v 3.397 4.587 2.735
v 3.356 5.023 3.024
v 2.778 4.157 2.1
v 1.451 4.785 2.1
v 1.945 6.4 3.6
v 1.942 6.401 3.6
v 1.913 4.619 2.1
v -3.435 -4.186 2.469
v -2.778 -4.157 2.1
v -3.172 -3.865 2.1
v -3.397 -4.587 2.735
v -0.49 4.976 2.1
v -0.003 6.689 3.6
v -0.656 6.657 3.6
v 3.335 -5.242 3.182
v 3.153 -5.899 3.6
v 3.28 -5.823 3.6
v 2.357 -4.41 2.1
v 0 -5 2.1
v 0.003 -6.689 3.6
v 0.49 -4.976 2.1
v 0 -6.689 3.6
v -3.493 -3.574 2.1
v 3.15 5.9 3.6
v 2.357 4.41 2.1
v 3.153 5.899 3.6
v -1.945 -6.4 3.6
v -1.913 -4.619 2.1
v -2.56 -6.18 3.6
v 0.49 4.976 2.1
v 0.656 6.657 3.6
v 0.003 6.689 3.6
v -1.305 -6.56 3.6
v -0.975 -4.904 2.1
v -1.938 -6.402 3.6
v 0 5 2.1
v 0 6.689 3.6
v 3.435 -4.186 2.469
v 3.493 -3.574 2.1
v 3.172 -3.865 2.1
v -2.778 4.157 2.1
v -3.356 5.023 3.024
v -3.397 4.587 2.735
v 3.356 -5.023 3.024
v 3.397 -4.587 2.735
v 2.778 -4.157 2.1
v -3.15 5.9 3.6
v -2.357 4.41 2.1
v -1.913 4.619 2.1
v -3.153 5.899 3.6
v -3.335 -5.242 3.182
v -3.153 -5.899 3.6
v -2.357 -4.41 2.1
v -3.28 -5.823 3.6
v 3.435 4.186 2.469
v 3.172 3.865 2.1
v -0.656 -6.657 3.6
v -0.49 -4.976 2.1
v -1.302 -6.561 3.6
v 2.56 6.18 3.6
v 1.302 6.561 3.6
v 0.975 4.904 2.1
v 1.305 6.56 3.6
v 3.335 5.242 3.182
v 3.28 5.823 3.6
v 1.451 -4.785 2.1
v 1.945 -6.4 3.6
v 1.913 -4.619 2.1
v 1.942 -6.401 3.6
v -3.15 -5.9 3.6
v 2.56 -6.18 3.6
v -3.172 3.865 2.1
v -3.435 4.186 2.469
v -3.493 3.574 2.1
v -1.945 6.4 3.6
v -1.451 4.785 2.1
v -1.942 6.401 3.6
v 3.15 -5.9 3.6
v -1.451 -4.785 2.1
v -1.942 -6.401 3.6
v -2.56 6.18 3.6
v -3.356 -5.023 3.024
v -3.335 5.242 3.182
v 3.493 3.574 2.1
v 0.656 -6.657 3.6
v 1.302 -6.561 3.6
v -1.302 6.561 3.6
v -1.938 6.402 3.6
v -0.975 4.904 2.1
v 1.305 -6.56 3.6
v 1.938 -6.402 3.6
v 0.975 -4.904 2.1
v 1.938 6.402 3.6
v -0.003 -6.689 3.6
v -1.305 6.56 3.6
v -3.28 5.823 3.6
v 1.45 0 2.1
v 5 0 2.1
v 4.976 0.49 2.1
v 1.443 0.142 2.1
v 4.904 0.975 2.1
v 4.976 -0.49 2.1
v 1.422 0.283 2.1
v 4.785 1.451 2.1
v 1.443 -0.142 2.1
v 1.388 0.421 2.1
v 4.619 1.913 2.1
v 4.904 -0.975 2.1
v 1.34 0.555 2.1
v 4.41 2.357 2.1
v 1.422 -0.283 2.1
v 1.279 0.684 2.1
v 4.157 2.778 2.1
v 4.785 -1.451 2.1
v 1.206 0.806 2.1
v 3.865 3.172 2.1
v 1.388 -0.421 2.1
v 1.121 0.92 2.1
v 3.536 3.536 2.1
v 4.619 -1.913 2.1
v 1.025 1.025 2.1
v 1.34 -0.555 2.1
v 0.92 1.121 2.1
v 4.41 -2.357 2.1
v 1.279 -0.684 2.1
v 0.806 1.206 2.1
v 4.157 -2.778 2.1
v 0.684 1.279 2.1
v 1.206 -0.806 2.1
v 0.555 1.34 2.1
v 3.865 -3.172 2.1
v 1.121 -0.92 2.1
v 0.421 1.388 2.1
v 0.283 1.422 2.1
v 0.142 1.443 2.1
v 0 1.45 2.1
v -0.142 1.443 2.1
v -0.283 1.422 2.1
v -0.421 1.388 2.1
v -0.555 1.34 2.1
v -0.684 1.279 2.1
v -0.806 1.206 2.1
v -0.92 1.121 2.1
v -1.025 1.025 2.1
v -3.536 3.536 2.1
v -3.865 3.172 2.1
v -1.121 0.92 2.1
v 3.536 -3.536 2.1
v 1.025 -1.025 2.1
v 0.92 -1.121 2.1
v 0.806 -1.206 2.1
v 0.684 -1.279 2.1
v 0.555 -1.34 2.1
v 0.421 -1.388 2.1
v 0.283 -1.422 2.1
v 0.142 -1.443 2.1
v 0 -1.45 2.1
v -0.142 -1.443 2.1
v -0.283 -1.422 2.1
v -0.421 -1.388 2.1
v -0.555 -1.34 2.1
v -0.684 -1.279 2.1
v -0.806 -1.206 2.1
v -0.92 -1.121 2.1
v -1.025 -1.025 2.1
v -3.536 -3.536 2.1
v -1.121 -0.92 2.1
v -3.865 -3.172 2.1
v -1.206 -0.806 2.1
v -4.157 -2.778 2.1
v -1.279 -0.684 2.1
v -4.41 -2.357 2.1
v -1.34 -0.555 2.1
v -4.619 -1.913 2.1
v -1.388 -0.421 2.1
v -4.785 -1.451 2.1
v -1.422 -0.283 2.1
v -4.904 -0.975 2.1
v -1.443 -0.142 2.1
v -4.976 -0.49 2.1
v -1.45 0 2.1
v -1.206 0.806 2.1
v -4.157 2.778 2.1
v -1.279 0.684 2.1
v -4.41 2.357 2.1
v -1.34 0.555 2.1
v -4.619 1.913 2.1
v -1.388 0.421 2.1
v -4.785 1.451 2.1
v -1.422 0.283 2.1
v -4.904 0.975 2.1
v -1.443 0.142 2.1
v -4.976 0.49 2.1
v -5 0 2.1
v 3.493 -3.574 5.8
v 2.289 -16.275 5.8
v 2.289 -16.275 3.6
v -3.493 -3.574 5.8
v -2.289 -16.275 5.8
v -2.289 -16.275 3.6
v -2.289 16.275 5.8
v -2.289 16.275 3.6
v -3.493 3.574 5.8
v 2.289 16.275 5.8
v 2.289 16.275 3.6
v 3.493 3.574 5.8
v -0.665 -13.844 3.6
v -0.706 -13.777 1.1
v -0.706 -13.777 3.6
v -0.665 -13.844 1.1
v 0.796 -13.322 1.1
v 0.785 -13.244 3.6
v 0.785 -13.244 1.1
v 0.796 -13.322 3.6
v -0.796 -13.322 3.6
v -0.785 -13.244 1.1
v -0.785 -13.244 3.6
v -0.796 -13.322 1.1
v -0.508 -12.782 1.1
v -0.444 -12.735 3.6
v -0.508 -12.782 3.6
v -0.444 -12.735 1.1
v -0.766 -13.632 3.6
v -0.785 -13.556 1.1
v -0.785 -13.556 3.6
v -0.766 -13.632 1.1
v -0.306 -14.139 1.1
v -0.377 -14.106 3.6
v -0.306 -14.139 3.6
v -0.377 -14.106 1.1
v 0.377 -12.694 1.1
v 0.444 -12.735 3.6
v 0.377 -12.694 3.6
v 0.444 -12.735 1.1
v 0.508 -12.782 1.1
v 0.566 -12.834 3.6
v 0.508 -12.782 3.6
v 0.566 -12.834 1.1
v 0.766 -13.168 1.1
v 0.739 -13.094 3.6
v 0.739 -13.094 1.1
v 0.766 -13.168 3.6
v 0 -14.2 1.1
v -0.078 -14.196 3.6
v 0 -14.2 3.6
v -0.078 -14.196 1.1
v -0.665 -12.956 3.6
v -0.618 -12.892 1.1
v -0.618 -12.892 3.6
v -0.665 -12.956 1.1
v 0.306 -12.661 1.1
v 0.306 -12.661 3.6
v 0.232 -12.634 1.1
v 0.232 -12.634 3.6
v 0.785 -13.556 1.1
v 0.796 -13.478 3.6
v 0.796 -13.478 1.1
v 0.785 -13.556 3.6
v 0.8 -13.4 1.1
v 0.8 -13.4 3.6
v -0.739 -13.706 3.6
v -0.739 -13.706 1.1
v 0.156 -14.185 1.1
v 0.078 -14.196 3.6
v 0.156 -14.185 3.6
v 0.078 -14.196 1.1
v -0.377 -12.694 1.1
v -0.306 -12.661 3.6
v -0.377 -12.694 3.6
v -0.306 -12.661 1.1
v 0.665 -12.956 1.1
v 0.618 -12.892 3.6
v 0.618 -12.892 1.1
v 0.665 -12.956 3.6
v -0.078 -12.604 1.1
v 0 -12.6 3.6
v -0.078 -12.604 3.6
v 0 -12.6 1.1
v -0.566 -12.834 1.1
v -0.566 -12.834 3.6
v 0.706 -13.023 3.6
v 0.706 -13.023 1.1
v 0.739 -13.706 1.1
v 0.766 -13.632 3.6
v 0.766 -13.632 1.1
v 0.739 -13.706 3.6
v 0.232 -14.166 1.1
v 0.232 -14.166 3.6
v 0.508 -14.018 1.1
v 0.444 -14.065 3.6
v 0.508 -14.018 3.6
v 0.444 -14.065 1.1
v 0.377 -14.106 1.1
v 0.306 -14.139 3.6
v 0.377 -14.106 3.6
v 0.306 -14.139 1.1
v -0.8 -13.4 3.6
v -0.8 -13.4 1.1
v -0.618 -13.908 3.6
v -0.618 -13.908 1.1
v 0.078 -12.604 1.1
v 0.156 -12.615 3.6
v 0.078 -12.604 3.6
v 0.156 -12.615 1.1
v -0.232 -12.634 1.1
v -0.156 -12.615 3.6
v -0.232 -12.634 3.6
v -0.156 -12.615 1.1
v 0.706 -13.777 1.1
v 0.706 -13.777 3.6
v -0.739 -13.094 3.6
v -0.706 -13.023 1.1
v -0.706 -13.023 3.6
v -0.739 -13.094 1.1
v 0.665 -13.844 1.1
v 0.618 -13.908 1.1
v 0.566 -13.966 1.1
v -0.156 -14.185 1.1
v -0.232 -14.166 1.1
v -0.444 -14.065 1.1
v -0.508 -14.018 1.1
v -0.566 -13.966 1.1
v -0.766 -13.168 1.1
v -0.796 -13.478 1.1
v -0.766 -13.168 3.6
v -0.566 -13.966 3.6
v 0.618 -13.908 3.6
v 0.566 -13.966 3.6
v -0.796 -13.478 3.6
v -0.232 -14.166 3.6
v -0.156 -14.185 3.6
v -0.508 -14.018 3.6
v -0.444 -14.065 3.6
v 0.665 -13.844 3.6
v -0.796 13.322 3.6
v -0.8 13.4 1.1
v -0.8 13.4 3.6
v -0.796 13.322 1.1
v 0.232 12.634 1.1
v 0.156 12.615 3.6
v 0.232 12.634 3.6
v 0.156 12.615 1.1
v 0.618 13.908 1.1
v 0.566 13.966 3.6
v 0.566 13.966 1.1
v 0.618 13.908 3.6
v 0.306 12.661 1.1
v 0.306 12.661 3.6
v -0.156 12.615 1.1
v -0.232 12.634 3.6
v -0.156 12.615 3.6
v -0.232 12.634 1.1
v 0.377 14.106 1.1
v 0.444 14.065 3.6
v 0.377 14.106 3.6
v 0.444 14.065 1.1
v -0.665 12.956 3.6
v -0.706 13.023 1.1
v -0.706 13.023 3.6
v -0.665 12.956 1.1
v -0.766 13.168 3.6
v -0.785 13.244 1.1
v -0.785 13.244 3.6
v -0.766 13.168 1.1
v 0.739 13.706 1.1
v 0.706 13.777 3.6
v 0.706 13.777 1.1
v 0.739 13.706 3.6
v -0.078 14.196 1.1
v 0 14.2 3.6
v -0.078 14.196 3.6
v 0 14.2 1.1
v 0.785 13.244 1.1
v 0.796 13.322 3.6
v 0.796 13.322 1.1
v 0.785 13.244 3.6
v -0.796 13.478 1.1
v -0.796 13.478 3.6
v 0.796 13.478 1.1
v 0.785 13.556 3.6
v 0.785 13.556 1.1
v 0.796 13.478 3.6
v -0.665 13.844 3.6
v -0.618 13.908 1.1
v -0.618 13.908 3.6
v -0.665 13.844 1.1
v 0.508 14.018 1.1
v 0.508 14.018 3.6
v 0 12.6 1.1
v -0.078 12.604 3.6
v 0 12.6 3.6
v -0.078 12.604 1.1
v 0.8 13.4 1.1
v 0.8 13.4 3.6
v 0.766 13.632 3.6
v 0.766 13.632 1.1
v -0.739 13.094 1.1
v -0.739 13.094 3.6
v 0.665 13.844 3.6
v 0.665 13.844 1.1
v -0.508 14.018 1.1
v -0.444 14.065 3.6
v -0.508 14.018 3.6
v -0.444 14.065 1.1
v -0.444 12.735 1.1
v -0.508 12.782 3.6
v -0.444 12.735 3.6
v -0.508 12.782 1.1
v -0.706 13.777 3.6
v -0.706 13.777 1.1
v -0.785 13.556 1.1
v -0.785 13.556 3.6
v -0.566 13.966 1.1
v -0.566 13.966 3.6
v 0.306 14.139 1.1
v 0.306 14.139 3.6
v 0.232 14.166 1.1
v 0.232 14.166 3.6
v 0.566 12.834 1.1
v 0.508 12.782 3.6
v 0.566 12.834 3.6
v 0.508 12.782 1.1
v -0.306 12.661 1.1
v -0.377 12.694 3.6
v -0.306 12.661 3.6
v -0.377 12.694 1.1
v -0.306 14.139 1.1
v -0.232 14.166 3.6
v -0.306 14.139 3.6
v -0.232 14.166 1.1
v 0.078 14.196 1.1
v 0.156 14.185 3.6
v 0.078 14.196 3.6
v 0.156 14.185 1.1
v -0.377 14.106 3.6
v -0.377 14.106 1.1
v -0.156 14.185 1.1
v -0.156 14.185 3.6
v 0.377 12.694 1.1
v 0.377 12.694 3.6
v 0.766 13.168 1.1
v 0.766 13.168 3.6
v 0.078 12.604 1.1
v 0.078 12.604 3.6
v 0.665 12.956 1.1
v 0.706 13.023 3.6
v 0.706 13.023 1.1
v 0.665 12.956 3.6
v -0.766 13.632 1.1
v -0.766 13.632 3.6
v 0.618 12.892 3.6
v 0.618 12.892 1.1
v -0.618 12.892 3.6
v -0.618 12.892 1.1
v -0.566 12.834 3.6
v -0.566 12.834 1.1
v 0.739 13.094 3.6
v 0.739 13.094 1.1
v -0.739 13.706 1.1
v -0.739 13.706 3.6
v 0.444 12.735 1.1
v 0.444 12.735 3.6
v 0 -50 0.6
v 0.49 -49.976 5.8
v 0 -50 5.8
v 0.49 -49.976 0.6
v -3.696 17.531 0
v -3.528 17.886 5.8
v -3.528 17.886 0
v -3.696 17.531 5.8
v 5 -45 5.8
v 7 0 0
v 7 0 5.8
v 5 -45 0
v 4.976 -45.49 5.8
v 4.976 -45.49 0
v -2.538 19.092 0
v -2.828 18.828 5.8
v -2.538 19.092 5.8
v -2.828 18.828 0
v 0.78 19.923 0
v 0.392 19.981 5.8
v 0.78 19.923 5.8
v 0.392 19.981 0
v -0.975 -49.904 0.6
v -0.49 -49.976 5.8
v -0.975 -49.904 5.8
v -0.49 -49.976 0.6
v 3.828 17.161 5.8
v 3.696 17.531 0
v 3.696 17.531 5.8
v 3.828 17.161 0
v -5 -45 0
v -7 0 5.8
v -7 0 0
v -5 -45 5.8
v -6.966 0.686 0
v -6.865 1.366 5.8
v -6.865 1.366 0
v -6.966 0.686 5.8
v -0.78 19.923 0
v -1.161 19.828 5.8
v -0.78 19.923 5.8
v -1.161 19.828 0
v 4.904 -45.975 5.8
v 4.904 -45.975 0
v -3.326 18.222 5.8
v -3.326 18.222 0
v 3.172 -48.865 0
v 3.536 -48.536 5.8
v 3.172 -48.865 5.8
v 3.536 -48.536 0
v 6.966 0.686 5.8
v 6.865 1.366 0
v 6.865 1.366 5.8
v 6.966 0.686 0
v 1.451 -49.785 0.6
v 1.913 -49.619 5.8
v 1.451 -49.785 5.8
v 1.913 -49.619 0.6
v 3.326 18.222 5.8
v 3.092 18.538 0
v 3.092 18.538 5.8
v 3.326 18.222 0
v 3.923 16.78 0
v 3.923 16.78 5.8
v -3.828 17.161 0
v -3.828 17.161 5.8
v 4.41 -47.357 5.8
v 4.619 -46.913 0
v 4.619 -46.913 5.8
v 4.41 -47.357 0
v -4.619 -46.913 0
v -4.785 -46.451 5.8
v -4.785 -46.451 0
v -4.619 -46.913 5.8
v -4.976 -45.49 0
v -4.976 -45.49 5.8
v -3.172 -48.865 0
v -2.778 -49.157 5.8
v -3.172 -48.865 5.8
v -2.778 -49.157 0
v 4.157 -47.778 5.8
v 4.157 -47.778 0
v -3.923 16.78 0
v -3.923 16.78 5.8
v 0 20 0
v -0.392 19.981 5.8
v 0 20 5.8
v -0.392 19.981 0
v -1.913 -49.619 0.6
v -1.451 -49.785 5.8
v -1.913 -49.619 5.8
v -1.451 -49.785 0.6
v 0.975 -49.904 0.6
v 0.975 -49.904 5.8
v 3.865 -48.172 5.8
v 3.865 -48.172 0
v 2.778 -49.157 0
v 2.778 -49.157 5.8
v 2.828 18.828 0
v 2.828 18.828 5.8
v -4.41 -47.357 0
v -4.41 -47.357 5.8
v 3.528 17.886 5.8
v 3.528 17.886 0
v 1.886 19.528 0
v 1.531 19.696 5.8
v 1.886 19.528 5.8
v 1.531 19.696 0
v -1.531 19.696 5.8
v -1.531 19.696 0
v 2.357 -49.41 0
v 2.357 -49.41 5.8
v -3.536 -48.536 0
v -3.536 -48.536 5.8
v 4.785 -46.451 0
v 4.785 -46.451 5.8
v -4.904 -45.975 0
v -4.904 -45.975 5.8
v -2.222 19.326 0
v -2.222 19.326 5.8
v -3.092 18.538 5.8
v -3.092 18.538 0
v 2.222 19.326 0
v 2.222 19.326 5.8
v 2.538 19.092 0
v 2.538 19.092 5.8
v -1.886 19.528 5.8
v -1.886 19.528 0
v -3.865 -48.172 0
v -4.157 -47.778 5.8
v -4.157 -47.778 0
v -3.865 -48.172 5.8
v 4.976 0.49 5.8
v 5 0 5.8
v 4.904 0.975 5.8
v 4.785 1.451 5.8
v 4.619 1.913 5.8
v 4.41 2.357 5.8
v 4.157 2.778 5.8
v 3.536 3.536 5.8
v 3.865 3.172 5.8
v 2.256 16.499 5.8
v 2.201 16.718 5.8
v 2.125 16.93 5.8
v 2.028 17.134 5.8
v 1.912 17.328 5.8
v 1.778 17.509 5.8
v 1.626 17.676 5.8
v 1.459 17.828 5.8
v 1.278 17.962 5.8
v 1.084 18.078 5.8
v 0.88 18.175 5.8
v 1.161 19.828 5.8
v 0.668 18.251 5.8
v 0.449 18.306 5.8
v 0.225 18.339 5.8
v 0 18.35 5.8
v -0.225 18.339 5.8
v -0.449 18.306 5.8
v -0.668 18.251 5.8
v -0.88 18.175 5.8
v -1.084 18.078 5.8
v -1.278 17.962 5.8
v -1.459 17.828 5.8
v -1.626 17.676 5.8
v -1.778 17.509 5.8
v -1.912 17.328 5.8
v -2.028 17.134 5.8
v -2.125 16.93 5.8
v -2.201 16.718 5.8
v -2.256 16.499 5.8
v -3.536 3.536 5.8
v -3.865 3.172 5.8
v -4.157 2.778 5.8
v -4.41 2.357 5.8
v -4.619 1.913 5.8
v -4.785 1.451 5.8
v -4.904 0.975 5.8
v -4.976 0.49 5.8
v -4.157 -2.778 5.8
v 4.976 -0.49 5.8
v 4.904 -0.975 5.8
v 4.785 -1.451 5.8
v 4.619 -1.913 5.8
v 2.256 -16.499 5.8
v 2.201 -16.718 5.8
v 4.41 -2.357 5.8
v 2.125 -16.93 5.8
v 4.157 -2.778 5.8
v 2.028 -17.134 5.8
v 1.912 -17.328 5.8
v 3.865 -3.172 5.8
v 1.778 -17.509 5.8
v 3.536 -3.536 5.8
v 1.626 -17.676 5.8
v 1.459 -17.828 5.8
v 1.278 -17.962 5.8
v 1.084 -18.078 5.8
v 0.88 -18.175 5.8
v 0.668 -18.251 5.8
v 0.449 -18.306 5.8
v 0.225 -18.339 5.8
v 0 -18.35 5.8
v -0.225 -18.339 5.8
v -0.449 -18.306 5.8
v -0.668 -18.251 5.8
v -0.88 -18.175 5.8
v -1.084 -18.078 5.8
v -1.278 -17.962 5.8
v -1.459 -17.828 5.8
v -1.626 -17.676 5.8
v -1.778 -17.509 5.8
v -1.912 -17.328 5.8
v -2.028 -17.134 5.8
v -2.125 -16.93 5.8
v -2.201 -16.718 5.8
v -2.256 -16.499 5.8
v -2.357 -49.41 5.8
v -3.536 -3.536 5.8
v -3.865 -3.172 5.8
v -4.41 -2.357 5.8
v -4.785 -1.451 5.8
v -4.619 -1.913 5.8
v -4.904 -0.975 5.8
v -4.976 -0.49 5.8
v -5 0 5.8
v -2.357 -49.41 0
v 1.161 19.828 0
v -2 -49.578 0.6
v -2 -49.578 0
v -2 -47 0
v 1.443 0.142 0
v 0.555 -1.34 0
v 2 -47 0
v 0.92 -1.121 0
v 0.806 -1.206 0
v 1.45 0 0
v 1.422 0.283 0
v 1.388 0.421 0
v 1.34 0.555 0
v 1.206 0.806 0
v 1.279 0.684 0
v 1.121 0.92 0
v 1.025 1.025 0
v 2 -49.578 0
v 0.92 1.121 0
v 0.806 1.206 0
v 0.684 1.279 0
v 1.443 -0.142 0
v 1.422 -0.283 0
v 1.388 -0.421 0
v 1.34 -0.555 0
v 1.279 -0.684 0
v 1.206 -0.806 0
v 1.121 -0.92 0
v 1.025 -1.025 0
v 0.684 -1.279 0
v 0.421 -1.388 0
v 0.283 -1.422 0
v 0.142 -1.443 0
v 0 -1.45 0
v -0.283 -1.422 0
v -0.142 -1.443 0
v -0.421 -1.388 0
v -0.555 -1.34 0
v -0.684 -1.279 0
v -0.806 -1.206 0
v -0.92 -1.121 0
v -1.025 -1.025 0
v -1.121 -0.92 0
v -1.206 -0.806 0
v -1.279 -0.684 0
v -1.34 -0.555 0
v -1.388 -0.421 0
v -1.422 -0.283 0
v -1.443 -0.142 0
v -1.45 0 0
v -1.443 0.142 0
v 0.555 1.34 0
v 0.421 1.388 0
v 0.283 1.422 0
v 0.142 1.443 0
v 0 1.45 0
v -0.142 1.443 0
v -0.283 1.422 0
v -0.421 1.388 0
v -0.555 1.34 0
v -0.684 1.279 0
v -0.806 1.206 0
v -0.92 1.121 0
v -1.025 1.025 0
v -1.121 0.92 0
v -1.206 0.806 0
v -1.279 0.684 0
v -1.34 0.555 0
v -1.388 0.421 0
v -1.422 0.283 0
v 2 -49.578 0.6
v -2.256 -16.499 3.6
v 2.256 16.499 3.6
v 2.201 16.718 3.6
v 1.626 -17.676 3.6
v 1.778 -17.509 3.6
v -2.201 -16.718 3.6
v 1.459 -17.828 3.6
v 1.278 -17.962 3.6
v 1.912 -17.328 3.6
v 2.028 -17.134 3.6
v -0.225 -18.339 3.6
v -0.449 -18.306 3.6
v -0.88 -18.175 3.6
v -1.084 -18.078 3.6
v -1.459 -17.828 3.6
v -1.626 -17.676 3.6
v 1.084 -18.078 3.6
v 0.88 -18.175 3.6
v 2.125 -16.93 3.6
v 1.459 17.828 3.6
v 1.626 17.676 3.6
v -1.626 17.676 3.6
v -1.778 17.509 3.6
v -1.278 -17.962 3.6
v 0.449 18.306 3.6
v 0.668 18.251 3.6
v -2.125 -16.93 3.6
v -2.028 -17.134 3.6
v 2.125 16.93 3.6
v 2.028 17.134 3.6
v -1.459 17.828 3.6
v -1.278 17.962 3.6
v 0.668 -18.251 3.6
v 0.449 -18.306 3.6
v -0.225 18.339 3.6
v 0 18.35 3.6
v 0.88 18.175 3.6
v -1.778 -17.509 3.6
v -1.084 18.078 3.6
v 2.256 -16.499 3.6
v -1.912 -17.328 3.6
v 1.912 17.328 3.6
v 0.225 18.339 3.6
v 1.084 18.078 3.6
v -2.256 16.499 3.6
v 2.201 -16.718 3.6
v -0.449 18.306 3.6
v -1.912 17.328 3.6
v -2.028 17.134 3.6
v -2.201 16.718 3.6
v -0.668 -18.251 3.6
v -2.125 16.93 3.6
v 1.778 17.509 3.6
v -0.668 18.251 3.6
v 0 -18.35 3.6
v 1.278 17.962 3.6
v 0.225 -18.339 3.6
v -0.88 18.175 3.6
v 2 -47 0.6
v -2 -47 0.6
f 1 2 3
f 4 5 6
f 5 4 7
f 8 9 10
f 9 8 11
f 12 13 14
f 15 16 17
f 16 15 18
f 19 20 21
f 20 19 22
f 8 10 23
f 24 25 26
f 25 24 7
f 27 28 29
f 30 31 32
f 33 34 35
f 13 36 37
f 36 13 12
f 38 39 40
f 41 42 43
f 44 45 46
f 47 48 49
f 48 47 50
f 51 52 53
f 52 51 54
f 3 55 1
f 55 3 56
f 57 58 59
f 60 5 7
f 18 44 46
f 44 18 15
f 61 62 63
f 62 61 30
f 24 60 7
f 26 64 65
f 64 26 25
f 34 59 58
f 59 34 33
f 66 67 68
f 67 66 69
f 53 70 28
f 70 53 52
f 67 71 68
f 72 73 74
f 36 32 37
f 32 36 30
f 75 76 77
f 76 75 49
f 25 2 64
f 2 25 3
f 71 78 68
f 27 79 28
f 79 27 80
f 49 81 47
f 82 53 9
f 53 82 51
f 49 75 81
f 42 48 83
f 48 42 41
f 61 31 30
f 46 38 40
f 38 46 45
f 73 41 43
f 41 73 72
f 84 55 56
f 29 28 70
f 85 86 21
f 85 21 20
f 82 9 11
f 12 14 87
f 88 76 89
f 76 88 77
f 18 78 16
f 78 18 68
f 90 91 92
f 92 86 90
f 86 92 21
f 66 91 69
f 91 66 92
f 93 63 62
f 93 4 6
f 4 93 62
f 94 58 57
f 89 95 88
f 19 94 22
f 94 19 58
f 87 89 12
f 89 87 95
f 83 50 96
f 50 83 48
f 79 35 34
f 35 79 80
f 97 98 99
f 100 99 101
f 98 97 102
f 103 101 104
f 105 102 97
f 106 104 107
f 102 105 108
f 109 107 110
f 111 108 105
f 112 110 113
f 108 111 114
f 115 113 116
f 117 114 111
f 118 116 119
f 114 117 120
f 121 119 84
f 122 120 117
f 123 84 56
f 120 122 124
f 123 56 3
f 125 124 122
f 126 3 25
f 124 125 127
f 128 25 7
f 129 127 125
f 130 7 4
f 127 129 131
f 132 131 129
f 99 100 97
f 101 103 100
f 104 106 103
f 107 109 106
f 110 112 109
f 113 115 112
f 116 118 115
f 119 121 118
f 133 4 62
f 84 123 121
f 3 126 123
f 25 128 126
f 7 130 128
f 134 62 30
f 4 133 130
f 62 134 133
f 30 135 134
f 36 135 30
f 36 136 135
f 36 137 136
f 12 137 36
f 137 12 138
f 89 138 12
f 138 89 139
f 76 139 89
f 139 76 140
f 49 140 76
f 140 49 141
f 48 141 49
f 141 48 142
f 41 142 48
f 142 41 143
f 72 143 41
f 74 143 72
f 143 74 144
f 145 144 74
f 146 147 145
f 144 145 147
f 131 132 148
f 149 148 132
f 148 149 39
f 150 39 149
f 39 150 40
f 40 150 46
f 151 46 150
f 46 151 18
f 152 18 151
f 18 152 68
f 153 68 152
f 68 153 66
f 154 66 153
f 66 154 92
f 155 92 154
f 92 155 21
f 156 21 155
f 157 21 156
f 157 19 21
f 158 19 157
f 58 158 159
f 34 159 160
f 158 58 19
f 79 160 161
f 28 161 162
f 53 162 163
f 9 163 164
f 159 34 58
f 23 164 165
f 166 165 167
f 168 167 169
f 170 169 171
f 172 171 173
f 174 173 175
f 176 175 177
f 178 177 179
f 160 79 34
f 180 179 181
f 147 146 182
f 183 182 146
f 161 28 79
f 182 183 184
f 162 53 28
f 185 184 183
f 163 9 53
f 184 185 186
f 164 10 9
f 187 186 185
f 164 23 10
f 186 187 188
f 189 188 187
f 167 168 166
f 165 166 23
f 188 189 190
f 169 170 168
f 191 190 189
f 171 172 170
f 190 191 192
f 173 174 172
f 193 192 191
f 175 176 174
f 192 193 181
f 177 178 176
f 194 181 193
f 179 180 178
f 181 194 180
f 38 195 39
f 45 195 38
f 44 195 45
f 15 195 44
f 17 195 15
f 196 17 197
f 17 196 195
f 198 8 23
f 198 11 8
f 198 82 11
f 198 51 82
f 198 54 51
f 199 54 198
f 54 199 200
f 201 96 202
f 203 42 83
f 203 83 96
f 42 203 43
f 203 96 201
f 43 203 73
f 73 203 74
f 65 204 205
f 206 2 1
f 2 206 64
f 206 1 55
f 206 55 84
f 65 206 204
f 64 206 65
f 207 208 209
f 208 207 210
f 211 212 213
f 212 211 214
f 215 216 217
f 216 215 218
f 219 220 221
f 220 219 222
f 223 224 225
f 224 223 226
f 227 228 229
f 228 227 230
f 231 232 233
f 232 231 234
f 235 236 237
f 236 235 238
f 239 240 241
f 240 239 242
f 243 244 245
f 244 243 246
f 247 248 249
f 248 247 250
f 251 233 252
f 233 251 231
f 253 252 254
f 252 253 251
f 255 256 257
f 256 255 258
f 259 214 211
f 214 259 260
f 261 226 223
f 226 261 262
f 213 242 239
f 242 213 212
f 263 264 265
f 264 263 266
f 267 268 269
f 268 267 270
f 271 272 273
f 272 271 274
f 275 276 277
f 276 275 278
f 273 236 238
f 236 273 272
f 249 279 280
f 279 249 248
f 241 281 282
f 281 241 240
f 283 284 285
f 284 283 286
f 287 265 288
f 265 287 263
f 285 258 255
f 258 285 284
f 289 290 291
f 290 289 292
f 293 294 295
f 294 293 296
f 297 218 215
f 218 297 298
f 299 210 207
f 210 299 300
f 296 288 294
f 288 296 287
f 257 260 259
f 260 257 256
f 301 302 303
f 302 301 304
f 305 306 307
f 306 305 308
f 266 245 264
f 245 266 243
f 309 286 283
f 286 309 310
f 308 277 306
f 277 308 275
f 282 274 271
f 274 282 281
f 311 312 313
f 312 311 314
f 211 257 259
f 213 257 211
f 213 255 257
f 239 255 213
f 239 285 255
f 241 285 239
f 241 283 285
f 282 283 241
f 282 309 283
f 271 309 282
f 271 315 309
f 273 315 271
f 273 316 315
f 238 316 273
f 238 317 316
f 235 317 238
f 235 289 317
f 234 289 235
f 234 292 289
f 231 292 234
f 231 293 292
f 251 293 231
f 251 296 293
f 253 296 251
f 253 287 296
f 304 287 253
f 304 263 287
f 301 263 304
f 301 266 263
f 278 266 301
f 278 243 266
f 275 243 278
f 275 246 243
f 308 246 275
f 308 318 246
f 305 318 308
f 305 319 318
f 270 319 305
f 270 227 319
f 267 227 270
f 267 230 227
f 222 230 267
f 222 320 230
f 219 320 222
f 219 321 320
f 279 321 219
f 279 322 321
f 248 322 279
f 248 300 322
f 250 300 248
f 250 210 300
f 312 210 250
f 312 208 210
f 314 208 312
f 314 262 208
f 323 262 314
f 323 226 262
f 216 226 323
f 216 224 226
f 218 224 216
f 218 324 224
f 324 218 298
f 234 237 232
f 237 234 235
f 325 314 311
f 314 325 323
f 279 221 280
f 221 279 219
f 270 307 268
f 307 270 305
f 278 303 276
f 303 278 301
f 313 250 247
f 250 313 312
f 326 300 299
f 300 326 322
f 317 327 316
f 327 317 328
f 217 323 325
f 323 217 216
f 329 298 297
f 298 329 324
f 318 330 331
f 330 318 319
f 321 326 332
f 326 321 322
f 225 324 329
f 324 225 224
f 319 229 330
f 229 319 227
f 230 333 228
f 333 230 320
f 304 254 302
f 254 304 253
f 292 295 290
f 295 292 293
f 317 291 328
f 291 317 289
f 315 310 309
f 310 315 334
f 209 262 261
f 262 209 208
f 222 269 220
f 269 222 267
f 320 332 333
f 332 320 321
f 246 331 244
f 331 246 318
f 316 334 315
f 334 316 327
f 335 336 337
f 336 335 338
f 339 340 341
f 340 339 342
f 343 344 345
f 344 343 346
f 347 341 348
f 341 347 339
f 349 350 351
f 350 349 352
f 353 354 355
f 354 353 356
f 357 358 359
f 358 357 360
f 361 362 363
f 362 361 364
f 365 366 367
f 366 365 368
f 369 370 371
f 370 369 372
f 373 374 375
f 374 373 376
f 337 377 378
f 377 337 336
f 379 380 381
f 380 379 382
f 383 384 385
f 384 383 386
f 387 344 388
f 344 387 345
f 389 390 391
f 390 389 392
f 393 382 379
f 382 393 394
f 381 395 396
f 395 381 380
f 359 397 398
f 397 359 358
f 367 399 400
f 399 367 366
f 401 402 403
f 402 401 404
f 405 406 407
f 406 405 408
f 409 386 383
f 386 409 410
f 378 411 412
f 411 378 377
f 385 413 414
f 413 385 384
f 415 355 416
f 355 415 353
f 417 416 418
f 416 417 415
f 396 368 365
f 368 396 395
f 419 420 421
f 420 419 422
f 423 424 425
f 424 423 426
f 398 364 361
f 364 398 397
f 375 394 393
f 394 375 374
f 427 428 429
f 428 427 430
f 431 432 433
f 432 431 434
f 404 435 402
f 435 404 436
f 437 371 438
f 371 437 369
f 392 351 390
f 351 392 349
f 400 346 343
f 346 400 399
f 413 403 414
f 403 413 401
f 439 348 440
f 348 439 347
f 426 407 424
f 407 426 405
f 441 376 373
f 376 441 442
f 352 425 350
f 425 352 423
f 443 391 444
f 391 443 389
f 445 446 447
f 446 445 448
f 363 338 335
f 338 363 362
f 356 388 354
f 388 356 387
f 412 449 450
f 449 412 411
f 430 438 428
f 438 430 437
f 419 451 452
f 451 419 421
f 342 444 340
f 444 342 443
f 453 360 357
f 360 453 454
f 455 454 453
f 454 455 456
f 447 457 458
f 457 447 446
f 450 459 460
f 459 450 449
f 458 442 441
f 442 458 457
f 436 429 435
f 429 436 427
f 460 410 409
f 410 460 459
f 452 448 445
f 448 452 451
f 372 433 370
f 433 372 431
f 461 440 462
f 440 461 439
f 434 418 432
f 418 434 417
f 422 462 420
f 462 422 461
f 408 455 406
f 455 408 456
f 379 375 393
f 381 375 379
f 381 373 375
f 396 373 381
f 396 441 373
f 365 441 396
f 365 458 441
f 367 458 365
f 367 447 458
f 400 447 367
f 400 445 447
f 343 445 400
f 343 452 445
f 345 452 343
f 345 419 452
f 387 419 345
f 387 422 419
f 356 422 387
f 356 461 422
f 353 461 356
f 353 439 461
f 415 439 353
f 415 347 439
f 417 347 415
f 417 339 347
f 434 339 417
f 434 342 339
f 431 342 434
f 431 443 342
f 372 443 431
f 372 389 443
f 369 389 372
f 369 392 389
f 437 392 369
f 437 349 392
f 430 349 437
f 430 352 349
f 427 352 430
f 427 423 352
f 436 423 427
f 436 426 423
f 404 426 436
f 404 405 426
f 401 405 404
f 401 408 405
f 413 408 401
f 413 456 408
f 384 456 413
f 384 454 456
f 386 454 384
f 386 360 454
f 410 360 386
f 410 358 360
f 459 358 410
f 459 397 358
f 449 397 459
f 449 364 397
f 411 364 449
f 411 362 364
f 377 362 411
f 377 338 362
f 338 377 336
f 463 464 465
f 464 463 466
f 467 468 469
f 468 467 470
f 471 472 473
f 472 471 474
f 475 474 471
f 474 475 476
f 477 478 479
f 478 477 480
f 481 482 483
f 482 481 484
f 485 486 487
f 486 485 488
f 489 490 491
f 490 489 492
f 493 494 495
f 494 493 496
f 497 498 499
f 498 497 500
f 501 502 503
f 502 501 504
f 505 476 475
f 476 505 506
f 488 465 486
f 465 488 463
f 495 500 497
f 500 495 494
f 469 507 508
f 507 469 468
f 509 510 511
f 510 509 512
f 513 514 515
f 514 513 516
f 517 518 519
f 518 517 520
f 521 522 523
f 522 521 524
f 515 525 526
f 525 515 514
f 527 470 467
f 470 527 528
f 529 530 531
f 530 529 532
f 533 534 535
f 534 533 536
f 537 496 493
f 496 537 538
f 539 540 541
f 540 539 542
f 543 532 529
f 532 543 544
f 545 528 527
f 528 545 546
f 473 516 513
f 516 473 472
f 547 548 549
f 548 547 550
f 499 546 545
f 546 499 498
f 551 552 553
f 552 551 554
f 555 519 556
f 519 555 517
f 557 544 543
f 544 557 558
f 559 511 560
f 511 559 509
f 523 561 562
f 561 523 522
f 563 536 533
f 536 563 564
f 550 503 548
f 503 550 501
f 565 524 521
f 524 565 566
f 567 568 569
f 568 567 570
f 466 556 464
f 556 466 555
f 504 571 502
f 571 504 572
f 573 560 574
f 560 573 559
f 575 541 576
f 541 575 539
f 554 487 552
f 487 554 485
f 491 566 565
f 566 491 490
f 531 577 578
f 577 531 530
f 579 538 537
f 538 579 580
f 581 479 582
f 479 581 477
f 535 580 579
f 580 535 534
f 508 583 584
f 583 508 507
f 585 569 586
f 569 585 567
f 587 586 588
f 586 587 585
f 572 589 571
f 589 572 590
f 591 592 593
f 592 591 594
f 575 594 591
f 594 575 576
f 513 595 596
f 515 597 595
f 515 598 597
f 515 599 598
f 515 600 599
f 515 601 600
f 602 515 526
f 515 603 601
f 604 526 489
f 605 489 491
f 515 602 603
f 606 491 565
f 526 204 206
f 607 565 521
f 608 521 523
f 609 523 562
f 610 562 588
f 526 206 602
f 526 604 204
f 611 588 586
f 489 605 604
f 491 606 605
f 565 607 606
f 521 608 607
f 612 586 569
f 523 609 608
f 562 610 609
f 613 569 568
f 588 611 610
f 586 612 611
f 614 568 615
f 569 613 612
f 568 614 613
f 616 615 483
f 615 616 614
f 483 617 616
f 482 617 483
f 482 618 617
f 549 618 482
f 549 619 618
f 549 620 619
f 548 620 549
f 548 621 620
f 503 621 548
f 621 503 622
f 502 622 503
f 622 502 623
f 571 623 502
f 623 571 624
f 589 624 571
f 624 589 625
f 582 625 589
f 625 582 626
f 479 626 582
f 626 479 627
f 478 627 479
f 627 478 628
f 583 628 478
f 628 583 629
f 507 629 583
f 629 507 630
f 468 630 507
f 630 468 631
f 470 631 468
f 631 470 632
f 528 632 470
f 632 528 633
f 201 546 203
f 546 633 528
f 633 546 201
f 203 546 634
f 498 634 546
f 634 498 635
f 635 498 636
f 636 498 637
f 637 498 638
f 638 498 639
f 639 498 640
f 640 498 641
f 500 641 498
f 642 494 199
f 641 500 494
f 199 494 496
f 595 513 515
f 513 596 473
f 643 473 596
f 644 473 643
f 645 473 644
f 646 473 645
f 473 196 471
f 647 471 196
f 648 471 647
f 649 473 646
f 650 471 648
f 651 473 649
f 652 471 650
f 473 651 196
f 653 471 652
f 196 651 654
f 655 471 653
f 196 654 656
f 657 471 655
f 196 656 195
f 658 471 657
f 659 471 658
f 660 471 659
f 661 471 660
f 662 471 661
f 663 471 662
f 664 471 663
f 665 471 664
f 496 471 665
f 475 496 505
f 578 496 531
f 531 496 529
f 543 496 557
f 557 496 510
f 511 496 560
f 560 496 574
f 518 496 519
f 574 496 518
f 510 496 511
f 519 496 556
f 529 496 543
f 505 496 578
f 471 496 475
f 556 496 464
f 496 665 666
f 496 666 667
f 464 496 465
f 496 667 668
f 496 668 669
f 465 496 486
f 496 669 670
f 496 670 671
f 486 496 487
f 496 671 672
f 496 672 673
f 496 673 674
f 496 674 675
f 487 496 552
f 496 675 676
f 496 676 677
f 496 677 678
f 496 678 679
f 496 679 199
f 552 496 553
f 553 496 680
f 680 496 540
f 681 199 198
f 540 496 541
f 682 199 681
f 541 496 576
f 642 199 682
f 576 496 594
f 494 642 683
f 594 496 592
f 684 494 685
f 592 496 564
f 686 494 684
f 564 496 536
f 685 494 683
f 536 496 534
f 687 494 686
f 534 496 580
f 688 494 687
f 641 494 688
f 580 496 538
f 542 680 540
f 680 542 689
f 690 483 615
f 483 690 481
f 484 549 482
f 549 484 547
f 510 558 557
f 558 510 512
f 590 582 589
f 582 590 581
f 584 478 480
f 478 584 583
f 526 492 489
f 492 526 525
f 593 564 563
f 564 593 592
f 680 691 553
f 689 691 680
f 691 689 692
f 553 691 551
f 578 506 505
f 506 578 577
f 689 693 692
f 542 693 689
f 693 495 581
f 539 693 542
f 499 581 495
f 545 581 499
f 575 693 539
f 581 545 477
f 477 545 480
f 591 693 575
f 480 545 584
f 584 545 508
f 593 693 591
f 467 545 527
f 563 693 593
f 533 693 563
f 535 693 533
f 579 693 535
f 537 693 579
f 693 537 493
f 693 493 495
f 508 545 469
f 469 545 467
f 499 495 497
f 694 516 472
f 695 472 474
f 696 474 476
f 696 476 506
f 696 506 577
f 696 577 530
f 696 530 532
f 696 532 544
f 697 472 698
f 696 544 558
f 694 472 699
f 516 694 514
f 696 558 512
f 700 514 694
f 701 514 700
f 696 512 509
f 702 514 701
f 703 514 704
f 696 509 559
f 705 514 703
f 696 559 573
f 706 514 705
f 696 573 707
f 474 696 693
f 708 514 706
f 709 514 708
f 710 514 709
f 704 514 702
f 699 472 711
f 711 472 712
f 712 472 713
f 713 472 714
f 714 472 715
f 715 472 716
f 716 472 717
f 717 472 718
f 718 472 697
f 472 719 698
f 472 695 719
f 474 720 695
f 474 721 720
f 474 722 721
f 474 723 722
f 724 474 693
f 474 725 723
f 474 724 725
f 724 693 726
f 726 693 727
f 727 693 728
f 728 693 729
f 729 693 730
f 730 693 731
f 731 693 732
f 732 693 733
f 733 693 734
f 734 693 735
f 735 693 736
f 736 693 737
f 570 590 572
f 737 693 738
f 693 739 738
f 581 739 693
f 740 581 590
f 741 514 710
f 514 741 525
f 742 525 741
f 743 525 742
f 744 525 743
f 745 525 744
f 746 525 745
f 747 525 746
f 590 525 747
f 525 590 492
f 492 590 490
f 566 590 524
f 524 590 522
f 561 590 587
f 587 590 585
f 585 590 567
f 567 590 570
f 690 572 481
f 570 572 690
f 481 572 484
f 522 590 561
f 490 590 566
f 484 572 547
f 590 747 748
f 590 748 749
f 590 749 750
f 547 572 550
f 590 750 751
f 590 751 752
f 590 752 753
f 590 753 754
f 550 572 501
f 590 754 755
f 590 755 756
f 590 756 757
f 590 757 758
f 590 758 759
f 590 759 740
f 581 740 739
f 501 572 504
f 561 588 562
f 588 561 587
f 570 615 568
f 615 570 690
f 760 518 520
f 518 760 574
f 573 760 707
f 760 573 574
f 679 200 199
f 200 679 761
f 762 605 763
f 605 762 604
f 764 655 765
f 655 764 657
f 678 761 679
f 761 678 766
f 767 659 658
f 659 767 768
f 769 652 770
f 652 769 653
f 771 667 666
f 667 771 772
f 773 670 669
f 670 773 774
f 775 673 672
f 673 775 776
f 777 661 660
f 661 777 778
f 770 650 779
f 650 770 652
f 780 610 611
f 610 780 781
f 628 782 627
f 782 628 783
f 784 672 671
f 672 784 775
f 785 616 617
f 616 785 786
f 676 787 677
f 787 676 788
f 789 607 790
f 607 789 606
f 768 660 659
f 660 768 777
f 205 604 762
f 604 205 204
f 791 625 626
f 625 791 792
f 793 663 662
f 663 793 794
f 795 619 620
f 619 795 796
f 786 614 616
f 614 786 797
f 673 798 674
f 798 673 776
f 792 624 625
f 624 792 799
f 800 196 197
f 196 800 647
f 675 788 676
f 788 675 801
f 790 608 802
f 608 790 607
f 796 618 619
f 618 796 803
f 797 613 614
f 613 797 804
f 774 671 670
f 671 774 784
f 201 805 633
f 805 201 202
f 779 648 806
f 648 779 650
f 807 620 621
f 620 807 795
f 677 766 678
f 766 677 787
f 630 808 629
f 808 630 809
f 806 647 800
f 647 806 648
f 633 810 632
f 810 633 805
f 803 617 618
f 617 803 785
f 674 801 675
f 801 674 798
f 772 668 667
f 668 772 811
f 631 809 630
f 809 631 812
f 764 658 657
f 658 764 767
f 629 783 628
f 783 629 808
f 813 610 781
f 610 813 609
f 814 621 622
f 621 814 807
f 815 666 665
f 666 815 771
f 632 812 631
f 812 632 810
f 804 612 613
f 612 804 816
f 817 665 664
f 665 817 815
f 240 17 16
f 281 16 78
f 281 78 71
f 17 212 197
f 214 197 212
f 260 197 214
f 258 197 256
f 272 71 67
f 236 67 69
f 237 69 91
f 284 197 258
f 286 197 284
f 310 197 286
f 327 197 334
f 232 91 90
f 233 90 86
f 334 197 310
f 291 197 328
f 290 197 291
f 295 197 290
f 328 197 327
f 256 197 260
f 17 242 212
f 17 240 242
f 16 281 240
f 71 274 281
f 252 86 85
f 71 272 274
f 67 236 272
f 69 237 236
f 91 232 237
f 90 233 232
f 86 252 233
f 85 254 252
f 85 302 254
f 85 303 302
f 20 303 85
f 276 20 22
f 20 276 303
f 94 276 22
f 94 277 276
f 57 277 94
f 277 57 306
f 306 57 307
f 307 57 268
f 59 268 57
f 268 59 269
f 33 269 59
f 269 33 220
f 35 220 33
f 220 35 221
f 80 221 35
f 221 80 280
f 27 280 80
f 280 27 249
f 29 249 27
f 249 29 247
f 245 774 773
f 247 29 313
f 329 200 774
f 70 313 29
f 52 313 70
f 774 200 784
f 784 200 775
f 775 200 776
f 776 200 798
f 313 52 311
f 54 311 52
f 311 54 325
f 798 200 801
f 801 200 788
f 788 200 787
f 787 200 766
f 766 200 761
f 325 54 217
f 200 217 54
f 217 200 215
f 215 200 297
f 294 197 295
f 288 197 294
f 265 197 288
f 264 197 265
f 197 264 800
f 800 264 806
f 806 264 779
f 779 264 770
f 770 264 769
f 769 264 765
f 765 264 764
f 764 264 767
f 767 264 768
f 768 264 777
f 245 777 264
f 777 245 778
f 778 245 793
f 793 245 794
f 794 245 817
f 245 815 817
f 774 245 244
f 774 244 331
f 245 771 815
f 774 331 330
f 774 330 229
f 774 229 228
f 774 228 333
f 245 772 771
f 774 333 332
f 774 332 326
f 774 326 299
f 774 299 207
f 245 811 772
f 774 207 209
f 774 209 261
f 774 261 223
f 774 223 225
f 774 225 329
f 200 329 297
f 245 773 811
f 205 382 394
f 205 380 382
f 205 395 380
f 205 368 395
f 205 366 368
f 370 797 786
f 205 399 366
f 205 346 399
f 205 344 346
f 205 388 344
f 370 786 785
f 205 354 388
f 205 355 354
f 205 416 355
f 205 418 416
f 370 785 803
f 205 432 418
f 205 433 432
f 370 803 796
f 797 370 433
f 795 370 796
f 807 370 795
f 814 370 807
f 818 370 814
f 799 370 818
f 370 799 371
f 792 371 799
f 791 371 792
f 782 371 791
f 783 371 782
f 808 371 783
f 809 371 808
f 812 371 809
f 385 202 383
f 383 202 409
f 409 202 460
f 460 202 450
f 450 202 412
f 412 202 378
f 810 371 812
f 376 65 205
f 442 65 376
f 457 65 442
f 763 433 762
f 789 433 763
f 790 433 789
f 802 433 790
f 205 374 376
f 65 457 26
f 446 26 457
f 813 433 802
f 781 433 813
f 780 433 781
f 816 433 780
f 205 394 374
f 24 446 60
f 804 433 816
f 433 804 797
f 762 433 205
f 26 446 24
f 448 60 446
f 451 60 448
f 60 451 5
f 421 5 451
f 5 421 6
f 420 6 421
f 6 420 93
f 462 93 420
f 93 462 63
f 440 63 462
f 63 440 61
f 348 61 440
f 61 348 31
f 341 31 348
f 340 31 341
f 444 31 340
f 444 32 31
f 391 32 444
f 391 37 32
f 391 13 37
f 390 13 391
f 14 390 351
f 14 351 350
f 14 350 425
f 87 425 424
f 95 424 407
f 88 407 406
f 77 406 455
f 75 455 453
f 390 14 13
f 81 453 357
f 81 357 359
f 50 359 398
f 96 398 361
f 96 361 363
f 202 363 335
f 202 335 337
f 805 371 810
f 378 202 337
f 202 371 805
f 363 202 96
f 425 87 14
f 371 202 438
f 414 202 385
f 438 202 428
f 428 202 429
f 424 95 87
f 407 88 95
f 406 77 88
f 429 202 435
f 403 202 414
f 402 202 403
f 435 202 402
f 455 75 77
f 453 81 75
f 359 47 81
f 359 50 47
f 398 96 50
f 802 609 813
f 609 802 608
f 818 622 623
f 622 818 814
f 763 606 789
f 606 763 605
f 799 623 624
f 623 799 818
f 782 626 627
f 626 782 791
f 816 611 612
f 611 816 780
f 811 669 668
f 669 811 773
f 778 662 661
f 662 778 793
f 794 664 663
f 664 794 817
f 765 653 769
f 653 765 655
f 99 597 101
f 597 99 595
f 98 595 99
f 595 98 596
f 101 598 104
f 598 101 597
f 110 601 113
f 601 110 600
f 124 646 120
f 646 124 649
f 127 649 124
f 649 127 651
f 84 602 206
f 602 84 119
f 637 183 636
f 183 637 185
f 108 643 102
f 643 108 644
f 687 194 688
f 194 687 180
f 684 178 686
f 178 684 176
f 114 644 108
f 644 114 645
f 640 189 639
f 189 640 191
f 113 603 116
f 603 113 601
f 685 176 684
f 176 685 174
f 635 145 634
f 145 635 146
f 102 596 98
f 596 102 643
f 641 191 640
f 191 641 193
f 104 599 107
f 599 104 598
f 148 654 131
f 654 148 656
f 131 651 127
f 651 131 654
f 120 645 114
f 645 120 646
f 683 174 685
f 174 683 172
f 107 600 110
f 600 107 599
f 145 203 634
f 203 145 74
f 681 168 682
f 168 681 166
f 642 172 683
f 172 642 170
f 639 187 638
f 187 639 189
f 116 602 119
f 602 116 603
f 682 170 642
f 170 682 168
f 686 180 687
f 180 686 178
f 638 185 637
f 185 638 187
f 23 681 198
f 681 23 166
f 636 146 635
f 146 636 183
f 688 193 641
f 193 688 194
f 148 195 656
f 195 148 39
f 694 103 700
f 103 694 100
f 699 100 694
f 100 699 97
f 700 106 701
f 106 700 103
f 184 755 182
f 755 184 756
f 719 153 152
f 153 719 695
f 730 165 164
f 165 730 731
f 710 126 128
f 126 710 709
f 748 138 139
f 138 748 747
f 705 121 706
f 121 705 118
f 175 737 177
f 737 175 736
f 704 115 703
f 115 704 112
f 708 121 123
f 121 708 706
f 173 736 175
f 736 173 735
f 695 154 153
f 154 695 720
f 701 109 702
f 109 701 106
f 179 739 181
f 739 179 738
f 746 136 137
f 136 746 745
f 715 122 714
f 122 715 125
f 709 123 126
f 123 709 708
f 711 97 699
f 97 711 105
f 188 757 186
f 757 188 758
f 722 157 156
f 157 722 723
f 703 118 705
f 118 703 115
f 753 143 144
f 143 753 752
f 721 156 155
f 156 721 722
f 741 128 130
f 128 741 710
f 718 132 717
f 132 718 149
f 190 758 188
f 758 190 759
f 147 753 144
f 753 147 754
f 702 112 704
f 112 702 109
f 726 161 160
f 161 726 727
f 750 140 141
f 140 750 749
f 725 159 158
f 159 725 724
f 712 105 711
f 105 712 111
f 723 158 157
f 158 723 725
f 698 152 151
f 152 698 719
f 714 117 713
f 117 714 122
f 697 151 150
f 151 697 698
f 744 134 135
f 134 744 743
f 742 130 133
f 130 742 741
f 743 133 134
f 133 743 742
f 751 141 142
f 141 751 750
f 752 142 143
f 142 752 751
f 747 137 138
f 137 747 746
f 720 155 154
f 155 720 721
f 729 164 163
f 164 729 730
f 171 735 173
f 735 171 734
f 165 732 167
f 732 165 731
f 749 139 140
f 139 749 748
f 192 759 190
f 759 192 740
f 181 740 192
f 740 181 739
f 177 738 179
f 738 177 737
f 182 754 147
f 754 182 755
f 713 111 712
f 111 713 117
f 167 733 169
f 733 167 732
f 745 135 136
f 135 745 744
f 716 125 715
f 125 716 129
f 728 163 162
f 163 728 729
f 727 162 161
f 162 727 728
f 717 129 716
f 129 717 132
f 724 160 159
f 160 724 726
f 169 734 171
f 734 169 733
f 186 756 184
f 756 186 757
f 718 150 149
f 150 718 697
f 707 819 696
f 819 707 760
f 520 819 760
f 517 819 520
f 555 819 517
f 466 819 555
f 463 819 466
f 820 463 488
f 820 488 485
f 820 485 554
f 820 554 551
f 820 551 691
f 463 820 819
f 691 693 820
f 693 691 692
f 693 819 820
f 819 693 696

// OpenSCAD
// Leg V4: Leg V3 with more clearance everywhere. Owner printed V3 (2026-11-27): horn and screws too tight.
// V3 layout: deeper disc recess plus sloped room for the ramps. Shaped around the owner's measured double-arm horn. Units mm. OpenSCAD 2021.01.
// Horn measured 2026-11-27 from grid-sheet photos (about +/-0.2mm), not calipers:
//   overall length 35.7, hub boss 7.2 dia x 2.0 tall (spline side),
//   screw-side bump (Andrew spotted this, photos 2026-11-27): a straight-sided disc,
//   about 8.0-8.7 dia x 1.1 tall, PLUS small ramps where it meets the arm. The ramps
//   rise from the arm face up to the disc top, so from the side the bump looks sloped.
//   Owner's printed gauge: arm 2.0 thick, spline boss 7.5.
//   arm 2.0 thick,
//   arm 6.0 wide beside the hub tapering to 3.6 at the rounded tip,
//   arm holes about 1.4 dia at 5.9, 8.4, 10.9, 13.4, 15.9 from centre.
// The horn stays as mounted on the servo: tall spline boss DOWN onto the motor, disc with ramps UP into this leg pocket. The leg sits on top like a lid.
// An M2 x 6 screw through the leg and horn into the servo shaft clamps everything.
// Print pocket side UP. No supports.
$fn=64;

horn_len=35.7; arm_t=2.0; arm_w_hub=6.0; arm_w_tip=3.6; hub_x=3.5;
disc_d=8.7; bump_h=1.1;   // largest measured disc; height from the side photo
rc_d=disc_d+1.3;           // straight recess for the disc
rc_h=bump_h+0.4;           // a little deeper than the disc
ramp_d=13.4;               // ramp clearance: widens to this at the arm face, only inside the arm pocket
pilot_r=13.4;     // 4th hole from the centre, both arms
clr=1.0;          // total extra width/length in the pocket (0.5 each side; V3 had 0.2 and was too tight)

leg_t=5.8; hip_d=14; foot_d=10; leg_len=45; tail_d=8; tail_len=16;
pocket=arm_t+0.2;             // arm sits just below the leg face
recess=pocket+rc_h;           // total depth to the bottom of the sloped recess
floor_t=leg_t-recess;         // plastic under the hub that the screw clamps
tip_c=horn_len/2-arm_w_tip/2;

module leg_outline() {
  hull() { circle(d=hip_d); translate([0,-leg_len]) circle(d=foot_d); }
  hull() { circle(d=hip_d); translate([0,tail_len]) circle(d=tail_d); }
}
module arm_outline() {
  hull() for(s=[-1,1]) {
    translate([0,s*hub_x]) square([arm_w_hub+clr,.01],center=true);
    translate([0,s*tip_c]) circle(d=arm_w_tip+clr);
  }
}
module leg() {
  difference() {
    linear_extrude(leg_t) leg_outline();
    translate([0,0,leg_t-pocket]) linear_extrude(pocket+.1) arm_outline();
    translate([0,0,leg_t-recess]) cylinder(d=rc_d,h=recess+.1);                 // straight-sided disc recess
    intersection() {                                                             // sloped room for the ramps
      translate([0,0,leg_t-recess]) cylinder(d1=rc_d,d2=ramp_d,h=rc_h+.01);
      translate([0,0,leg_t-recess-.1]) linear_extrude(rc_h+.2) arm_outline();
    }
    translate([0,0,-.1]) cylinder(d=2.9,h=leg_t+.2);              // M2 shaft screw, loose
    for(s=[-1,1]) translate([0,s*pilot_r,leg_t-pocket-2.5]) cylinder(d=1.6,h=2.6); // optional tiny horn screws
    translate([-2,-leg_len-foot_d/2-1,-.1]) cube([4,4,0.7]);      // toe mark on the bed face
  }
}
leg();

assert(floor_t>=2,"Plastic under the hub for the clamp screw");
assert(tail_len+tail_d/2-(horn_len+clr)/2>=1.5,"Wall beyond the upper horn tip");
assert((hip_d-rc_d)/2>=1.6,"Side wall around the hub recess");
assert(leg_t-pocket-2.5>=0.4,"Pilot holes stay inside the leg");
